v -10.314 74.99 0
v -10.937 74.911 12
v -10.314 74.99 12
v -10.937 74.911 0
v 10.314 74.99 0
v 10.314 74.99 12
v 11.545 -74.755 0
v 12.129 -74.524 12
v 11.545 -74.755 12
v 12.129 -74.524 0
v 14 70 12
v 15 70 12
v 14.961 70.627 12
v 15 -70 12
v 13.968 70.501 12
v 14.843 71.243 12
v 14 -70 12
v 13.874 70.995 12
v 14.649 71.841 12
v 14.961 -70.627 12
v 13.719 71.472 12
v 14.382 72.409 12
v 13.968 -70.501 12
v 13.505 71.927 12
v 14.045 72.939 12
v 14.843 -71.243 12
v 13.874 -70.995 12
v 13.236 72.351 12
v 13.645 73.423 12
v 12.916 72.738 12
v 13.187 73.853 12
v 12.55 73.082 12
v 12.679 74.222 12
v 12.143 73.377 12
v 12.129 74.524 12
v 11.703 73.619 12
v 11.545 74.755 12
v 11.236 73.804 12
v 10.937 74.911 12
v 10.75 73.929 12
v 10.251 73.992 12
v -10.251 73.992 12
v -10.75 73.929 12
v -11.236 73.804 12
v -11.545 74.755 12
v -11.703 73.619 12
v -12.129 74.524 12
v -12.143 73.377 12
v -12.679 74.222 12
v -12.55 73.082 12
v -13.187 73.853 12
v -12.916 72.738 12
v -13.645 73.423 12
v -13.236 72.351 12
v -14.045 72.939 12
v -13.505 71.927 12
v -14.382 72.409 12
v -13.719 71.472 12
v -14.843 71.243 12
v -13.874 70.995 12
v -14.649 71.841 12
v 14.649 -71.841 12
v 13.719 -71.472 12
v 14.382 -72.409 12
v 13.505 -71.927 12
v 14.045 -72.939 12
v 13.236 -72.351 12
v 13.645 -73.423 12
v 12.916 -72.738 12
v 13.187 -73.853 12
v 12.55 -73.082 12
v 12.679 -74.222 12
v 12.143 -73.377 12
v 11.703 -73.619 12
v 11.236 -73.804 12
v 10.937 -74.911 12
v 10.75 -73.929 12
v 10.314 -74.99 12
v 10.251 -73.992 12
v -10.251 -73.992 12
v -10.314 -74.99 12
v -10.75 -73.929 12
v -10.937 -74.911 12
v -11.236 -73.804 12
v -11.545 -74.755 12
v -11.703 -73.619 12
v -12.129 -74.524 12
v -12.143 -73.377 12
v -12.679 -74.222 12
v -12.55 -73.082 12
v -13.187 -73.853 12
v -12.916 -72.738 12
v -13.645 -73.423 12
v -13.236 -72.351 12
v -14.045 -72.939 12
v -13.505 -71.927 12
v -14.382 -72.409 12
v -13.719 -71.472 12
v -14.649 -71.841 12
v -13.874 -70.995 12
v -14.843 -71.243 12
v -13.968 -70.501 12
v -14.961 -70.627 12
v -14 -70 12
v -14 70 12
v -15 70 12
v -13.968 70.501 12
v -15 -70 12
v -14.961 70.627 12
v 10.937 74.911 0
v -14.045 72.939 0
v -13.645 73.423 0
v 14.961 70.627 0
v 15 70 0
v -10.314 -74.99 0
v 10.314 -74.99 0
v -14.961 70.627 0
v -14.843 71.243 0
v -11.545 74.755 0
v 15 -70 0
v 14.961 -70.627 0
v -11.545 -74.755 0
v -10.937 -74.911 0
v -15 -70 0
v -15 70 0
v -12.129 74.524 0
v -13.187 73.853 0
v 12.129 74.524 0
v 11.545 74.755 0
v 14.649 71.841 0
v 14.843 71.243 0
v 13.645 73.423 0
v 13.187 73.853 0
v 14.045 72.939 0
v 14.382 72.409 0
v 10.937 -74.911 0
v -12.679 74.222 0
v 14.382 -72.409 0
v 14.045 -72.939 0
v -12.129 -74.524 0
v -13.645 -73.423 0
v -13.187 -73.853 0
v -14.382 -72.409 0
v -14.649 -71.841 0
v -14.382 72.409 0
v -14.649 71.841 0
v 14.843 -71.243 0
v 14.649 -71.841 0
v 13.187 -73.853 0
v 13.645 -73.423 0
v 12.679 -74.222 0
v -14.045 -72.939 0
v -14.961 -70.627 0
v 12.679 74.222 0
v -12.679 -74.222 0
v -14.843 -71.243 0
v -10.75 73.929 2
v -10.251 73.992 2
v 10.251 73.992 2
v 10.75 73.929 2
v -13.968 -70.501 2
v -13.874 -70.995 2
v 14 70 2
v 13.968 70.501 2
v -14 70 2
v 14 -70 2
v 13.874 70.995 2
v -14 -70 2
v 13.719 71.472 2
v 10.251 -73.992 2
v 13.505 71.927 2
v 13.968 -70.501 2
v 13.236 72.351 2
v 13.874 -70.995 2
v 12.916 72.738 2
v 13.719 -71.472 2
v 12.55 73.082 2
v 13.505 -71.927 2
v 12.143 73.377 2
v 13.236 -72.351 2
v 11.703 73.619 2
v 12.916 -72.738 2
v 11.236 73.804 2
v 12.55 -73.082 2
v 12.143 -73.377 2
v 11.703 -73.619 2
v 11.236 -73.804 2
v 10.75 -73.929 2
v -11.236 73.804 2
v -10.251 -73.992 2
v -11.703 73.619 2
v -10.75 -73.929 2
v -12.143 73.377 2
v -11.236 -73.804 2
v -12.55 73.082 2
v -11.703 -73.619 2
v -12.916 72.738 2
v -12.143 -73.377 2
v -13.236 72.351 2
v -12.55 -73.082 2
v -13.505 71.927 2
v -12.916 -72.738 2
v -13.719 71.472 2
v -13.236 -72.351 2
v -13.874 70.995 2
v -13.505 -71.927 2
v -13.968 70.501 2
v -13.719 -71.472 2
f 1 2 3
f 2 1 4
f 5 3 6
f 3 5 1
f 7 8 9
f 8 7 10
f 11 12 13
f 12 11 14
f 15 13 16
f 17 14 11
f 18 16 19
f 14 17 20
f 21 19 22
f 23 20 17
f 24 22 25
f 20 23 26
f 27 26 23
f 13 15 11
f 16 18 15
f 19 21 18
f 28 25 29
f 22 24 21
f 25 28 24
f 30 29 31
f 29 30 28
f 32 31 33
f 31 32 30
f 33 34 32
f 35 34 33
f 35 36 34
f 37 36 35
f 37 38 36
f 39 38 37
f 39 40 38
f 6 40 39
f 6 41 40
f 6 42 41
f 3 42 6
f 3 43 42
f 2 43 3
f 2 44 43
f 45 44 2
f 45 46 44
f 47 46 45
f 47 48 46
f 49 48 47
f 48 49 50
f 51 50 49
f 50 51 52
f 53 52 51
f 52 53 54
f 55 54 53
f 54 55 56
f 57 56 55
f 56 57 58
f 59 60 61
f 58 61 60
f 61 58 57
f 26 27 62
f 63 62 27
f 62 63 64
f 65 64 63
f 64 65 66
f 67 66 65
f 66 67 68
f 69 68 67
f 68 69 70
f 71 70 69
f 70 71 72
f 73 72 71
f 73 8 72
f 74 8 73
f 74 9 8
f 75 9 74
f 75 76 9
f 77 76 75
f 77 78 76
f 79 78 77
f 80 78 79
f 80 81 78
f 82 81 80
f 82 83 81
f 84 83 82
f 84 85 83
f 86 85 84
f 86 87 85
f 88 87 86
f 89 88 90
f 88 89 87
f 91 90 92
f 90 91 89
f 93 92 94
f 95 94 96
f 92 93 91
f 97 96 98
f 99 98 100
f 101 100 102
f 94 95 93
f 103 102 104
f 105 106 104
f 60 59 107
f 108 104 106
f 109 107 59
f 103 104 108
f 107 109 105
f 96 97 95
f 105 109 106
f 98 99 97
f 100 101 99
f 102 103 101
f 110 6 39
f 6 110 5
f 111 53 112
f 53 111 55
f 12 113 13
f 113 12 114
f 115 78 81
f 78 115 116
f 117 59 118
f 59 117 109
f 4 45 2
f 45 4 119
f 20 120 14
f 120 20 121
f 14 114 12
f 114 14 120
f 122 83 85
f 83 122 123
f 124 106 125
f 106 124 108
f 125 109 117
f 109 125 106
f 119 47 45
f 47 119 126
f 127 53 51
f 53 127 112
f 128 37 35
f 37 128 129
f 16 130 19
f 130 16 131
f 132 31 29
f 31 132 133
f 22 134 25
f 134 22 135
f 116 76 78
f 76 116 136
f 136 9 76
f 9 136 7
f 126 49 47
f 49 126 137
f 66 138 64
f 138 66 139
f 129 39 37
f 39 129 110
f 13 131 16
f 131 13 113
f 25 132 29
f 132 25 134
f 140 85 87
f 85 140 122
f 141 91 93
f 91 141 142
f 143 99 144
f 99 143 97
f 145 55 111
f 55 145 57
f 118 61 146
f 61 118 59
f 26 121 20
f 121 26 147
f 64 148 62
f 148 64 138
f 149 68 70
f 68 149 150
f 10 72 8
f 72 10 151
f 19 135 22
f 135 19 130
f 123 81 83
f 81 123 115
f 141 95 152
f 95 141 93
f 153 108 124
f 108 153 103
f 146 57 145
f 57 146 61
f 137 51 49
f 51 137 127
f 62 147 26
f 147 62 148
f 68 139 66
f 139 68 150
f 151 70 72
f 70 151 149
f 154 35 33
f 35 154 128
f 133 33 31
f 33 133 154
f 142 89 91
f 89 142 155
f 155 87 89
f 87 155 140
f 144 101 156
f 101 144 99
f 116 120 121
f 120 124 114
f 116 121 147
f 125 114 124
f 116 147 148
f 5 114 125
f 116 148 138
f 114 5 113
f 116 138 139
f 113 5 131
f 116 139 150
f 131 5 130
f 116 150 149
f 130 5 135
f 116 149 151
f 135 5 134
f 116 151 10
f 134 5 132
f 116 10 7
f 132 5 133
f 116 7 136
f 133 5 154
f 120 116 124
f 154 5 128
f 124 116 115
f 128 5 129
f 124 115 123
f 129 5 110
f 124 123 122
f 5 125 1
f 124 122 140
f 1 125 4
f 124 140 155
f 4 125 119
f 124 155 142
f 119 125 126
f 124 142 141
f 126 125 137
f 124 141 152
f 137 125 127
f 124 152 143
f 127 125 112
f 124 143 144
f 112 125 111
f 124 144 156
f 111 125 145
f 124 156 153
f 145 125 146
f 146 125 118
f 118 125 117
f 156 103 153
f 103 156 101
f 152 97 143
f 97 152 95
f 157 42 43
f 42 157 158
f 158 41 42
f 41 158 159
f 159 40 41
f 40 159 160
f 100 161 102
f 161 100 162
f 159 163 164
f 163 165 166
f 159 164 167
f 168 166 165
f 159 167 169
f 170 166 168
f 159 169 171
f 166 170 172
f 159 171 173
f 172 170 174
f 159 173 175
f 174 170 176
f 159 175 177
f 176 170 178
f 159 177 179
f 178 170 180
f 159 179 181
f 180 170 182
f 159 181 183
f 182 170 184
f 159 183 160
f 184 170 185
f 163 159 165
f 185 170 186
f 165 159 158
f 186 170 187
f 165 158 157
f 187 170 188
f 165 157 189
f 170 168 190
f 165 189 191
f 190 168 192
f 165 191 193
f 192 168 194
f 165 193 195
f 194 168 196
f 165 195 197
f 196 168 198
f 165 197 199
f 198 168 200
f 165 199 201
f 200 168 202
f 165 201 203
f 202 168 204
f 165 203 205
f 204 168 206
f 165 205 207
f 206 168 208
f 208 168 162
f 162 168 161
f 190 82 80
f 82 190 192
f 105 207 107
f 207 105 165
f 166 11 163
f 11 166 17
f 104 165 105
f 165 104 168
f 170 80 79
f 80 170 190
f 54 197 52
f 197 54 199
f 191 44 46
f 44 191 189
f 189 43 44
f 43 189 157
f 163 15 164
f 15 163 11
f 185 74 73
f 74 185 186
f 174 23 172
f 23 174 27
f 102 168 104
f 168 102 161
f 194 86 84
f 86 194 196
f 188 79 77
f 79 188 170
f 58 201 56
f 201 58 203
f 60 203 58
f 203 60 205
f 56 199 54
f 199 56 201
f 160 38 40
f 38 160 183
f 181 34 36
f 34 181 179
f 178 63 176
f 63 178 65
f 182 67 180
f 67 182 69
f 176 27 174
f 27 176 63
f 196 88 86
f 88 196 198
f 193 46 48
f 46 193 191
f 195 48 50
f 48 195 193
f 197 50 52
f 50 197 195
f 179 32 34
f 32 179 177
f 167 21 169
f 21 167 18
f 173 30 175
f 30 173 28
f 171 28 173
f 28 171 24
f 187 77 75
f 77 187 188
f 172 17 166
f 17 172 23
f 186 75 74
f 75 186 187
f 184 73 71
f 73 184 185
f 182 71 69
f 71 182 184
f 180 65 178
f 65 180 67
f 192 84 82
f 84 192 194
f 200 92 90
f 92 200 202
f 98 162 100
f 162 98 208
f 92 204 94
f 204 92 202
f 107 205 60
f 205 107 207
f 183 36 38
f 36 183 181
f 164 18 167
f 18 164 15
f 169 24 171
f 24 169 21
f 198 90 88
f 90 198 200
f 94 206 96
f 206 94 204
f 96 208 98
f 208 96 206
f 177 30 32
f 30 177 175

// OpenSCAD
$fn = 50;


difference() {
	union() {
		hull() {
			translate(v = [-10.0000000000, 70.0000000000, 0]) {
				cylinder(h = 12, r = 5);
			}
			translate(v = [10.0000000000, 70.0000000000, 0]) {
				cylinder(h = 12, r = 5);
			}
			translate(v = [-10.0000000000, -70.0000000000, 0]) {
				cylinder(h = 12, r = 5);
			}
			translate(v = [10.0000000000, -70.0000000000, 0]) {
				cylinder(h = 12, r = 5);
			}
		}
	}
	union() {
		translate(v = [0, 0, 2]) {
			hull() {
				translate(v = [-10.0000000000, 70.0000000000, 0]) {
					cylinder(h = 10, r = 4);
				}
				translate(v = [10.0000000000, 70.0000000000, 0]) {
					cylinder(h = 10, r = 4);
				}
				translate(v = [-10.0000000000, -70.0000000000, 0]) {
					cylinder(h = 10, r = 4);
				}
				translate(v = [10.0000000000, -70.0000000000, 0]) {
					cylinder(h = 10, r = 4);
				}
			}
		}
	}
}
